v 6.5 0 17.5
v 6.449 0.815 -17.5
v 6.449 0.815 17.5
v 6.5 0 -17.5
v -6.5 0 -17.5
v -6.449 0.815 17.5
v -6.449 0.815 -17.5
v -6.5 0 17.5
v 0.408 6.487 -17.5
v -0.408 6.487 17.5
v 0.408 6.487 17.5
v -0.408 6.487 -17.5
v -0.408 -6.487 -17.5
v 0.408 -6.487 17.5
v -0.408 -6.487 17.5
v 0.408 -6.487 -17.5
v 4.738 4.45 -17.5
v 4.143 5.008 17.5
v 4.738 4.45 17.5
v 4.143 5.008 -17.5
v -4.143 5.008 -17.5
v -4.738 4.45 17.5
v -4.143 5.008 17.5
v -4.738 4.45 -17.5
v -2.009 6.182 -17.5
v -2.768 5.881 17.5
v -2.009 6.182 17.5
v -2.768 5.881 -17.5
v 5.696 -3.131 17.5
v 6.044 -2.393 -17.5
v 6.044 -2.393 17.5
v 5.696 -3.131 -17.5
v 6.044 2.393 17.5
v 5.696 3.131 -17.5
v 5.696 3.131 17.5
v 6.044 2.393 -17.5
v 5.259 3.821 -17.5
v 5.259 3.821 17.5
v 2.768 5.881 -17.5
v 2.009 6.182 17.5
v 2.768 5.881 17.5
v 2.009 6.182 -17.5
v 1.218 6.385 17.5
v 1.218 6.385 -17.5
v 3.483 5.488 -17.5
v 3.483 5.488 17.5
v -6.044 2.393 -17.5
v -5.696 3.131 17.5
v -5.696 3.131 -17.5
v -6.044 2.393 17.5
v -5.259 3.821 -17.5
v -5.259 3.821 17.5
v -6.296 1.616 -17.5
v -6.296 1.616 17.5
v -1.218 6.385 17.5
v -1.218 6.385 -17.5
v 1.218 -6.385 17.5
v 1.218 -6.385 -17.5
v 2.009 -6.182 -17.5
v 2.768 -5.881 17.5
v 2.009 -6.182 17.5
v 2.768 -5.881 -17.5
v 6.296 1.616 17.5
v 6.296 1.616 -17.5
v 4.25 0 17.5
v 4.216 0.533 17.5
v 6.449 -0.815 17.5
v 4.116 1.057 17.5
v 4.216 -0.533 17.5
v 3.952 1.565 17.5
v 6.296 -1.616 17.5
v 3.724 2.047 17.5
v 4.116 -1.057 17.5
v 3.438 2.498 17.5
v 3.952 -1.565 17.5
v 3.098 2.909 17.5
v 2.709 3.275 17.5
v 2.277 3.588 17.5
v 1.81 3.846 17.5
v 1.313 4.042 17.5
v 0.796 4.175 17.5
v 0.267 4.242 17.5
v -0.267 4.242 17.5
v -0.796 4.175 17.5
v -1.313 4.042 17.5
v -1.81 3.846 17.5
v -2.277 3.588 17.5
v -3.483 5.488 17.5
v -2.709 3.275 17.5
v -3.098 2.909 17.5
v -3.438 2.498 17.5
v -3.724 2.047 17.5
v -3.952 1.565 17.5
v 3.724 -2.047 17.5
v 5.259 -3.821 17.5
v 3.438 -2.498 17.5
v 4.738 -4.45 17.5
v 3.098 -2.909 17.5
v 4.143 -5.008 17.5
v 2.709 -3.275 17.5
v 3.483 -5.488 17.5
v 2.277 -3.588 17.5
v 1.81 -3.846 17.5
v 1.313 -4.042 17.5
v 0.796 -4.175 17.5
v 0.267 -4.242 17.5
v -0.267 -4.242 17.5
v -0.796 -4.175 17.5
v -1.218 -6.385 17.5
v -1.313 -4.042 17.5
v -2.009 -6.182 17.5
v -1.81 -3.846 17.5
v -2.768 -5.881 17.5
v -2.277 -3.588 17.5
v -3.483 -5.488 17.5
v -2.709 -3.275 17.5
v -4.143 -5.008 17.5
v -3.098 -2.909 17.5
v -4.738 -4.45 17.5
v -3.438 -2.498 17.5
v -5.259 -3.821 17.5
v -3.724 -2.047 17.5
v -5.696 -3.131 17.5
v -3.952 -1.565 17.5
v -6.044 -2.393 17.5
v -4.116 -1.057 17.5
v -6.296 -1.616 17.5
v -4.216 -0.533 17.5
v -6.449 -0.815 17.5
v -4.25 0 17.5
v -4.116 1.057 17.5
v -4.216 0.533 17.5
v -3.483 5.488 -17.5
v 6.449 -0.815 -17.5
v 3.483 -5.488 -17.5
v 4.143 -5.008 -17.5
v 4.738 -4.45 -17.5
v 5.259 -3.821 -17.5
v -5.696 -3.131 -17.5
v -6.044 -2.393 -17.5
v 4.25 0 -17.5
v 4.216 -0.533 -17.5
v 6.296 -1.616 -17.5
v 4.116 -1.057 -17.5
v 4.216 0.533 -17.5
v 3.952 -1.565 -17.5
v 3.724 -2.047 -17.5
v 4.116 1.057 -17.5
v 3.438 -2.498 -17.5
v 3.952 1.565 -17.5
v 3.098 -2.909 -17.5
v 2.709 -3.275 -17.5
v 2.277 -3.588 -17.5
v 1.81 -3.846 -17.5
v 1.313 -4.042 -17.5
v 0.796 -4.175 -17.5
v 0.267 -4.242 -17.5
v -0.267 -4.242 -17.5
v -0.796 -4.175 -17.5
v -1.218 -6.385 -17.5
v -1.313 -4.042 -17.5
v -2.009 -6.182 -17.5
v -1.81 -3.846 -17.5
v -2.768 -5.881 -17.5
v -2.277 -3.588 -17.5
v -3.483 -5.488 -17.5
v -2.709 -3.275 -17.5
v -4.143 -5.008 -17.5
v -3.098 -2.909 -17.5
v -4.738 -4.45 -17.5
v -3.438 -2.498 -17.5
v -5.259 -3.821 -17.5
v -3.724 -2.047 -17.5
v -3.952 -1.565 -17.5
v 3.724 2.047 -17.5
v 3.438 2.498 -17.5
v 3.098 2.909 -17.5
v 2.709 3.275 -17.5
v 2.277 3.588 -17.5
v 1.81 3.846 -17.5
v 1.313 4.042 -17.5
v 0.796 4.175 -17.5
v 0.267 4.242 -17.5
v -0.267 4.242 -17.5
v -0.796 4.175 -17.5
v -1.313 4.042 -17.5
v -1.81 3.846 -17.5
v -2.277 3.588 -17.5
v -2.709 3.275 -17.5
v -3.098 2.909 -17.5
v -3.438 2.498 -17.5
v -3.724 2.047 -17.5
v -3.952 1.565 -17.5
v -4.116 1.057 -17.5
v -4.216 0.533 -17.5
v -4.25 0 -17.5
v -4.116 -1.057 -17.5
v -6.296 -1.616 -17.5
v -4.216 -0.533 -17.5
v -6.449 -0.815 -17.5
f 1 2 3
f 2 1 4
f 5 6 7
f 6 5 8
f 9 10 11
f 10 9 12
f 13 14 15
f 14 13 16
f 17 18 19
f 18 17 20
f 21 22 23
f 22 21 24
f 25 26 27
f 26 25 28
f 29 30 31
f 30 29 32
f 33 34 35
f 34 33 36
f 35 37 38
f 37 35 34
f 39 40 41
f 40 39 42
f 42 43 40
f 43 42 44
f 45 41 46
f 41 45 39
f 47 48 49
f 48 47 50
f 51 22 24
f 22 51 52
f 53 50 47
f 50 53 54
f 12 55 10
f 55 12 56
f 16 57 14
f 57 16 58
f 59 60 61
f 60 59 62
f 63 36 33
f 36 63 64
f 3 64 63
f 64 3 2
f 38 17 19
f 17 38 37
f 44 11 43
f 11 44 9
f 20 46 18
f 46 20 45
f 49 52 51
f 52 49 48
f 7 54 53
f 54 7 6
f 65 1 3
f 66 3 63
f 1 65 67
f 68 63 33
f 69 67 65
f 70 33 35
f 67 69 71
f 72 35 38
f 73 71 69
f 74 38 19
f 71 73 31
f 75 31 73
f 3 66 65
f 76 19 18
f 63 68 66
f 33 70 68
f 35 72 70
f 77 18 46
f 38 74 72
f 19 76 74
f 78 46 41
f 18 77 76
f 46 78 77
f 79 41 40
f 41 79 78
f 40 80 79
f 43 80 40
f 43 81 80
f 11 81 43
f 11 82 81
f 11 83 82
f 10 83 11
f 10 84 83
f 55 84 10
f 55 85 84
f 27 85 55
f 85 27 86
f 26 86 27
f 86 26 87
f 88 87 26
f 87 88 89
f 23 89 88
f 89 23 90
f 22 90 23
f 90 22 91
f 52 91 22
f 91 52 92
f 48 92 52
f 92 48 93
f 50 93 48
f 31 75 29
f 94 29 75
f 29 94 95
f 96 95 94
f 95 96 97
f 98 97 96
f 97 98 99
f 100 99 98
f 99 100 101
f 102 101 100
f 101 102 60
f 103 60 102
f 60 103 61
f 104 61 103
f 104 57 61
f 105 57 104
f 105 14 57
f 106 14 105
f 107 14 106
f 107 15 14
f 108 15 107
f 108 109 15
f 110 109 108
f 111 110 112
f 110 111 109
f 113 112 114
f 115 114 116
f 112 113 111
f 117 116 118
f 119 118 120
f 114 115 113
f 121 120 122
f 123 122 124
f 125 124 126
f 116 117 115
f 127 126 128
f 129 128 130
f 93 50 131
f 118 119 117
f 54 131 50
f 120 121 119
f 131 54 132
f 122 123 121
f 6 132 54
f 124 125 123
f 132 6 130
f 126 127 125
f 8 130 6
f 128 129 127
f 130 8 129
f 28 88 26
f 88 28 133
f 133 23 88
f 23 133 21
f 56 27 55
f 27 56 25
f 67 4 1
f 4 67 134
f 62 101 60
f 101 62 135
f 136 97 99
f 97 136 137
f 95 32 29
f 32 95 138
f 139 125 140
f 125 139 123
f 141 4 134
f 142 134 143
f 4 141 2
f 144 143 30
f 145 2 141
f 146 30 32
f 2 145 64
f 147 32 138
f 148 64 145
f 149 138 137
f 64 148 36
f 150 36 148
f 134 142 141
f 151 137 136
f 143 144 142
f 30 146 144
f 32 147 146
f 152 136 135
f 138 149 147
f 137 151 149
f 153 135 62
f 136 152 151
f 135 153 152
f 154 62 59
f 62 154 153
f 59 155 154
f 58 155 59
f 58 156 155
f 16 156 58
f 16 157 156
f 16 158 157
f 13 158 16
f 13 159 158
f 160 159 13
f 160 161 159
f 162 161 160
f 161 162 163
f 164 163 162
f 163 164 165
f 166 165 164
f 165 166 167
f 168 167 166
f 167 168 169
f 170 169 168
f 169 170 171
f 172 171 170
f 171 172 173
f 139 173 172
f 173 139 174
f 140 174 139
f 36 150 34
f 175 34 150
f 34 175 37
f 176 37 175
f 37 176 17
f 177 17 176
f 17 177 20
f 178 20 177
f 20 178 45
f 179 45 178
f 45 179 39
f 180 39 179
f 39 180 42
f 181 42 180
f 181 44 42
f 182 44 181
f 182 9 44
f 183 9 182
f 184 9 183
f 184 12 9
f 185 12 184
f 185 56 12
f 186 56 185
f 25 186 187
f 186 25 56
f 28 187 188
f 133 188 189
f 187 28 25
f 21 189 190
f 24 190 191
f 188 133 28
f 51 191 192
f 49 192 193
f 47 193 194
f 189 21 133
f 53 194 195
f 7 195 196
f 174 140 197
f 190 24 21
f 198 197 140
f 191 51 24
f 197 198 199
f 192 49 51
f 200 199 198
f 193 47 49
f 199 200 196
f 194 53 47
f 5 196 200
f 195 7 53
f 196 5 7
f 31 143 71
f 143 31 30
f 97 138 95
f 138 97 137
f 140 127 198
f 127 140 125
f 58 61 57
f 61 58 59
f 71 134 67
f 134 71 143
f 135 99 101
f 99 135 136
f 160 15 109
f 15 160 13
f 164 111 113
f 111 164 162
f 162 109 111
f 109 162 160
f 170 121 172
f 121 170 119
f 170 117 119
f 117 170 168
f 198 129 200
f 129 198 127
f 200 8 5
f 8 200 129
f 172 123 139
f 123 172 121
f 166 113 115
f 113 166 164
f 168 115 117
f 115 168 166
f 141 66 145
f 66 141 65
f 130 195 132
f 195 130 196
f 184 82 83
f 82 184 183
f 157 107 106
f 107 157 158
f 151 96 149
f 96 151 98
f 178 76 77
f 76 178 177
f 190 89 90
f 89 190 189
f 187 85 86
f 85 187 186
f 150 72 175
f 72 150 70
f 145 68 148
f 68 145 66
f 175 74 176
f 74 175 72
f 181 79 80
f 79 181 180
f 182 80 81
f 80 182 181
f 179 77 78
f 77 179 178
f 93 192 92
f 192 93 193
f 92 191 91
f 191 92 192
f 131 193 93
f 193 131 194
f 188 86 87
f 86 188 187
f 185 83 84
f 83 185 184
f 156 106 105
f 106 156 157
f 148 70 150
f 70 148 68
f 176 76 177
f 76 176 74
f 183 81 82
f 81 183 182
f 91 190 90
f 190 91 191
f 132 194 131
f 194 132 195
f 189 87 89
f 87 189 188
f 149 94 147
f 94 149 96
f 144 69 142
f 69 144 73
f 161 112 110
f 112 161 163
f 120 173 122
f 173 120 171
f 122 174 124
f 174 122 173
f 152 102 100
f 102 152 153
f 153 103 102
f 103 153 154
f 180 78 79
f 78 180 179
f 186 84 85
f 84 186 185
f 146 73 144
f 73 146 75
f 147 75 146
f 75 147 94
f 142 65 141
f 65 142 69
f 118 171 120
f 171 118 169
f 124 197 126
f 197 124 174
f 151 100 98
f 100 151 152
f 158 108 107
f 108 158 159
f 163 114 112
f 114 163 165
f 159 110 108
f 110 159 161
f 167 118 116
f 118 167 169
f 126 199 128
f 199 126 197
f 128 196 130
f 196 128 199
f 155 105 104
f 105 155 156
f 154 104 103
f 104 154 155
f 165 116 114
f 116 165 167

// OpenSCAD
$fn = 50;


difference() {
	union() {
		translate(v = [0, 0, -17.5000000000]) {
			cylinder(h = 35, r = 6.5000000000);
		}
	}
	union() {
		translate(v = [0, 0, -100.0000000000]) {
			cylinder(h = 200, r = 4.2500000000);
		}
	}
}
